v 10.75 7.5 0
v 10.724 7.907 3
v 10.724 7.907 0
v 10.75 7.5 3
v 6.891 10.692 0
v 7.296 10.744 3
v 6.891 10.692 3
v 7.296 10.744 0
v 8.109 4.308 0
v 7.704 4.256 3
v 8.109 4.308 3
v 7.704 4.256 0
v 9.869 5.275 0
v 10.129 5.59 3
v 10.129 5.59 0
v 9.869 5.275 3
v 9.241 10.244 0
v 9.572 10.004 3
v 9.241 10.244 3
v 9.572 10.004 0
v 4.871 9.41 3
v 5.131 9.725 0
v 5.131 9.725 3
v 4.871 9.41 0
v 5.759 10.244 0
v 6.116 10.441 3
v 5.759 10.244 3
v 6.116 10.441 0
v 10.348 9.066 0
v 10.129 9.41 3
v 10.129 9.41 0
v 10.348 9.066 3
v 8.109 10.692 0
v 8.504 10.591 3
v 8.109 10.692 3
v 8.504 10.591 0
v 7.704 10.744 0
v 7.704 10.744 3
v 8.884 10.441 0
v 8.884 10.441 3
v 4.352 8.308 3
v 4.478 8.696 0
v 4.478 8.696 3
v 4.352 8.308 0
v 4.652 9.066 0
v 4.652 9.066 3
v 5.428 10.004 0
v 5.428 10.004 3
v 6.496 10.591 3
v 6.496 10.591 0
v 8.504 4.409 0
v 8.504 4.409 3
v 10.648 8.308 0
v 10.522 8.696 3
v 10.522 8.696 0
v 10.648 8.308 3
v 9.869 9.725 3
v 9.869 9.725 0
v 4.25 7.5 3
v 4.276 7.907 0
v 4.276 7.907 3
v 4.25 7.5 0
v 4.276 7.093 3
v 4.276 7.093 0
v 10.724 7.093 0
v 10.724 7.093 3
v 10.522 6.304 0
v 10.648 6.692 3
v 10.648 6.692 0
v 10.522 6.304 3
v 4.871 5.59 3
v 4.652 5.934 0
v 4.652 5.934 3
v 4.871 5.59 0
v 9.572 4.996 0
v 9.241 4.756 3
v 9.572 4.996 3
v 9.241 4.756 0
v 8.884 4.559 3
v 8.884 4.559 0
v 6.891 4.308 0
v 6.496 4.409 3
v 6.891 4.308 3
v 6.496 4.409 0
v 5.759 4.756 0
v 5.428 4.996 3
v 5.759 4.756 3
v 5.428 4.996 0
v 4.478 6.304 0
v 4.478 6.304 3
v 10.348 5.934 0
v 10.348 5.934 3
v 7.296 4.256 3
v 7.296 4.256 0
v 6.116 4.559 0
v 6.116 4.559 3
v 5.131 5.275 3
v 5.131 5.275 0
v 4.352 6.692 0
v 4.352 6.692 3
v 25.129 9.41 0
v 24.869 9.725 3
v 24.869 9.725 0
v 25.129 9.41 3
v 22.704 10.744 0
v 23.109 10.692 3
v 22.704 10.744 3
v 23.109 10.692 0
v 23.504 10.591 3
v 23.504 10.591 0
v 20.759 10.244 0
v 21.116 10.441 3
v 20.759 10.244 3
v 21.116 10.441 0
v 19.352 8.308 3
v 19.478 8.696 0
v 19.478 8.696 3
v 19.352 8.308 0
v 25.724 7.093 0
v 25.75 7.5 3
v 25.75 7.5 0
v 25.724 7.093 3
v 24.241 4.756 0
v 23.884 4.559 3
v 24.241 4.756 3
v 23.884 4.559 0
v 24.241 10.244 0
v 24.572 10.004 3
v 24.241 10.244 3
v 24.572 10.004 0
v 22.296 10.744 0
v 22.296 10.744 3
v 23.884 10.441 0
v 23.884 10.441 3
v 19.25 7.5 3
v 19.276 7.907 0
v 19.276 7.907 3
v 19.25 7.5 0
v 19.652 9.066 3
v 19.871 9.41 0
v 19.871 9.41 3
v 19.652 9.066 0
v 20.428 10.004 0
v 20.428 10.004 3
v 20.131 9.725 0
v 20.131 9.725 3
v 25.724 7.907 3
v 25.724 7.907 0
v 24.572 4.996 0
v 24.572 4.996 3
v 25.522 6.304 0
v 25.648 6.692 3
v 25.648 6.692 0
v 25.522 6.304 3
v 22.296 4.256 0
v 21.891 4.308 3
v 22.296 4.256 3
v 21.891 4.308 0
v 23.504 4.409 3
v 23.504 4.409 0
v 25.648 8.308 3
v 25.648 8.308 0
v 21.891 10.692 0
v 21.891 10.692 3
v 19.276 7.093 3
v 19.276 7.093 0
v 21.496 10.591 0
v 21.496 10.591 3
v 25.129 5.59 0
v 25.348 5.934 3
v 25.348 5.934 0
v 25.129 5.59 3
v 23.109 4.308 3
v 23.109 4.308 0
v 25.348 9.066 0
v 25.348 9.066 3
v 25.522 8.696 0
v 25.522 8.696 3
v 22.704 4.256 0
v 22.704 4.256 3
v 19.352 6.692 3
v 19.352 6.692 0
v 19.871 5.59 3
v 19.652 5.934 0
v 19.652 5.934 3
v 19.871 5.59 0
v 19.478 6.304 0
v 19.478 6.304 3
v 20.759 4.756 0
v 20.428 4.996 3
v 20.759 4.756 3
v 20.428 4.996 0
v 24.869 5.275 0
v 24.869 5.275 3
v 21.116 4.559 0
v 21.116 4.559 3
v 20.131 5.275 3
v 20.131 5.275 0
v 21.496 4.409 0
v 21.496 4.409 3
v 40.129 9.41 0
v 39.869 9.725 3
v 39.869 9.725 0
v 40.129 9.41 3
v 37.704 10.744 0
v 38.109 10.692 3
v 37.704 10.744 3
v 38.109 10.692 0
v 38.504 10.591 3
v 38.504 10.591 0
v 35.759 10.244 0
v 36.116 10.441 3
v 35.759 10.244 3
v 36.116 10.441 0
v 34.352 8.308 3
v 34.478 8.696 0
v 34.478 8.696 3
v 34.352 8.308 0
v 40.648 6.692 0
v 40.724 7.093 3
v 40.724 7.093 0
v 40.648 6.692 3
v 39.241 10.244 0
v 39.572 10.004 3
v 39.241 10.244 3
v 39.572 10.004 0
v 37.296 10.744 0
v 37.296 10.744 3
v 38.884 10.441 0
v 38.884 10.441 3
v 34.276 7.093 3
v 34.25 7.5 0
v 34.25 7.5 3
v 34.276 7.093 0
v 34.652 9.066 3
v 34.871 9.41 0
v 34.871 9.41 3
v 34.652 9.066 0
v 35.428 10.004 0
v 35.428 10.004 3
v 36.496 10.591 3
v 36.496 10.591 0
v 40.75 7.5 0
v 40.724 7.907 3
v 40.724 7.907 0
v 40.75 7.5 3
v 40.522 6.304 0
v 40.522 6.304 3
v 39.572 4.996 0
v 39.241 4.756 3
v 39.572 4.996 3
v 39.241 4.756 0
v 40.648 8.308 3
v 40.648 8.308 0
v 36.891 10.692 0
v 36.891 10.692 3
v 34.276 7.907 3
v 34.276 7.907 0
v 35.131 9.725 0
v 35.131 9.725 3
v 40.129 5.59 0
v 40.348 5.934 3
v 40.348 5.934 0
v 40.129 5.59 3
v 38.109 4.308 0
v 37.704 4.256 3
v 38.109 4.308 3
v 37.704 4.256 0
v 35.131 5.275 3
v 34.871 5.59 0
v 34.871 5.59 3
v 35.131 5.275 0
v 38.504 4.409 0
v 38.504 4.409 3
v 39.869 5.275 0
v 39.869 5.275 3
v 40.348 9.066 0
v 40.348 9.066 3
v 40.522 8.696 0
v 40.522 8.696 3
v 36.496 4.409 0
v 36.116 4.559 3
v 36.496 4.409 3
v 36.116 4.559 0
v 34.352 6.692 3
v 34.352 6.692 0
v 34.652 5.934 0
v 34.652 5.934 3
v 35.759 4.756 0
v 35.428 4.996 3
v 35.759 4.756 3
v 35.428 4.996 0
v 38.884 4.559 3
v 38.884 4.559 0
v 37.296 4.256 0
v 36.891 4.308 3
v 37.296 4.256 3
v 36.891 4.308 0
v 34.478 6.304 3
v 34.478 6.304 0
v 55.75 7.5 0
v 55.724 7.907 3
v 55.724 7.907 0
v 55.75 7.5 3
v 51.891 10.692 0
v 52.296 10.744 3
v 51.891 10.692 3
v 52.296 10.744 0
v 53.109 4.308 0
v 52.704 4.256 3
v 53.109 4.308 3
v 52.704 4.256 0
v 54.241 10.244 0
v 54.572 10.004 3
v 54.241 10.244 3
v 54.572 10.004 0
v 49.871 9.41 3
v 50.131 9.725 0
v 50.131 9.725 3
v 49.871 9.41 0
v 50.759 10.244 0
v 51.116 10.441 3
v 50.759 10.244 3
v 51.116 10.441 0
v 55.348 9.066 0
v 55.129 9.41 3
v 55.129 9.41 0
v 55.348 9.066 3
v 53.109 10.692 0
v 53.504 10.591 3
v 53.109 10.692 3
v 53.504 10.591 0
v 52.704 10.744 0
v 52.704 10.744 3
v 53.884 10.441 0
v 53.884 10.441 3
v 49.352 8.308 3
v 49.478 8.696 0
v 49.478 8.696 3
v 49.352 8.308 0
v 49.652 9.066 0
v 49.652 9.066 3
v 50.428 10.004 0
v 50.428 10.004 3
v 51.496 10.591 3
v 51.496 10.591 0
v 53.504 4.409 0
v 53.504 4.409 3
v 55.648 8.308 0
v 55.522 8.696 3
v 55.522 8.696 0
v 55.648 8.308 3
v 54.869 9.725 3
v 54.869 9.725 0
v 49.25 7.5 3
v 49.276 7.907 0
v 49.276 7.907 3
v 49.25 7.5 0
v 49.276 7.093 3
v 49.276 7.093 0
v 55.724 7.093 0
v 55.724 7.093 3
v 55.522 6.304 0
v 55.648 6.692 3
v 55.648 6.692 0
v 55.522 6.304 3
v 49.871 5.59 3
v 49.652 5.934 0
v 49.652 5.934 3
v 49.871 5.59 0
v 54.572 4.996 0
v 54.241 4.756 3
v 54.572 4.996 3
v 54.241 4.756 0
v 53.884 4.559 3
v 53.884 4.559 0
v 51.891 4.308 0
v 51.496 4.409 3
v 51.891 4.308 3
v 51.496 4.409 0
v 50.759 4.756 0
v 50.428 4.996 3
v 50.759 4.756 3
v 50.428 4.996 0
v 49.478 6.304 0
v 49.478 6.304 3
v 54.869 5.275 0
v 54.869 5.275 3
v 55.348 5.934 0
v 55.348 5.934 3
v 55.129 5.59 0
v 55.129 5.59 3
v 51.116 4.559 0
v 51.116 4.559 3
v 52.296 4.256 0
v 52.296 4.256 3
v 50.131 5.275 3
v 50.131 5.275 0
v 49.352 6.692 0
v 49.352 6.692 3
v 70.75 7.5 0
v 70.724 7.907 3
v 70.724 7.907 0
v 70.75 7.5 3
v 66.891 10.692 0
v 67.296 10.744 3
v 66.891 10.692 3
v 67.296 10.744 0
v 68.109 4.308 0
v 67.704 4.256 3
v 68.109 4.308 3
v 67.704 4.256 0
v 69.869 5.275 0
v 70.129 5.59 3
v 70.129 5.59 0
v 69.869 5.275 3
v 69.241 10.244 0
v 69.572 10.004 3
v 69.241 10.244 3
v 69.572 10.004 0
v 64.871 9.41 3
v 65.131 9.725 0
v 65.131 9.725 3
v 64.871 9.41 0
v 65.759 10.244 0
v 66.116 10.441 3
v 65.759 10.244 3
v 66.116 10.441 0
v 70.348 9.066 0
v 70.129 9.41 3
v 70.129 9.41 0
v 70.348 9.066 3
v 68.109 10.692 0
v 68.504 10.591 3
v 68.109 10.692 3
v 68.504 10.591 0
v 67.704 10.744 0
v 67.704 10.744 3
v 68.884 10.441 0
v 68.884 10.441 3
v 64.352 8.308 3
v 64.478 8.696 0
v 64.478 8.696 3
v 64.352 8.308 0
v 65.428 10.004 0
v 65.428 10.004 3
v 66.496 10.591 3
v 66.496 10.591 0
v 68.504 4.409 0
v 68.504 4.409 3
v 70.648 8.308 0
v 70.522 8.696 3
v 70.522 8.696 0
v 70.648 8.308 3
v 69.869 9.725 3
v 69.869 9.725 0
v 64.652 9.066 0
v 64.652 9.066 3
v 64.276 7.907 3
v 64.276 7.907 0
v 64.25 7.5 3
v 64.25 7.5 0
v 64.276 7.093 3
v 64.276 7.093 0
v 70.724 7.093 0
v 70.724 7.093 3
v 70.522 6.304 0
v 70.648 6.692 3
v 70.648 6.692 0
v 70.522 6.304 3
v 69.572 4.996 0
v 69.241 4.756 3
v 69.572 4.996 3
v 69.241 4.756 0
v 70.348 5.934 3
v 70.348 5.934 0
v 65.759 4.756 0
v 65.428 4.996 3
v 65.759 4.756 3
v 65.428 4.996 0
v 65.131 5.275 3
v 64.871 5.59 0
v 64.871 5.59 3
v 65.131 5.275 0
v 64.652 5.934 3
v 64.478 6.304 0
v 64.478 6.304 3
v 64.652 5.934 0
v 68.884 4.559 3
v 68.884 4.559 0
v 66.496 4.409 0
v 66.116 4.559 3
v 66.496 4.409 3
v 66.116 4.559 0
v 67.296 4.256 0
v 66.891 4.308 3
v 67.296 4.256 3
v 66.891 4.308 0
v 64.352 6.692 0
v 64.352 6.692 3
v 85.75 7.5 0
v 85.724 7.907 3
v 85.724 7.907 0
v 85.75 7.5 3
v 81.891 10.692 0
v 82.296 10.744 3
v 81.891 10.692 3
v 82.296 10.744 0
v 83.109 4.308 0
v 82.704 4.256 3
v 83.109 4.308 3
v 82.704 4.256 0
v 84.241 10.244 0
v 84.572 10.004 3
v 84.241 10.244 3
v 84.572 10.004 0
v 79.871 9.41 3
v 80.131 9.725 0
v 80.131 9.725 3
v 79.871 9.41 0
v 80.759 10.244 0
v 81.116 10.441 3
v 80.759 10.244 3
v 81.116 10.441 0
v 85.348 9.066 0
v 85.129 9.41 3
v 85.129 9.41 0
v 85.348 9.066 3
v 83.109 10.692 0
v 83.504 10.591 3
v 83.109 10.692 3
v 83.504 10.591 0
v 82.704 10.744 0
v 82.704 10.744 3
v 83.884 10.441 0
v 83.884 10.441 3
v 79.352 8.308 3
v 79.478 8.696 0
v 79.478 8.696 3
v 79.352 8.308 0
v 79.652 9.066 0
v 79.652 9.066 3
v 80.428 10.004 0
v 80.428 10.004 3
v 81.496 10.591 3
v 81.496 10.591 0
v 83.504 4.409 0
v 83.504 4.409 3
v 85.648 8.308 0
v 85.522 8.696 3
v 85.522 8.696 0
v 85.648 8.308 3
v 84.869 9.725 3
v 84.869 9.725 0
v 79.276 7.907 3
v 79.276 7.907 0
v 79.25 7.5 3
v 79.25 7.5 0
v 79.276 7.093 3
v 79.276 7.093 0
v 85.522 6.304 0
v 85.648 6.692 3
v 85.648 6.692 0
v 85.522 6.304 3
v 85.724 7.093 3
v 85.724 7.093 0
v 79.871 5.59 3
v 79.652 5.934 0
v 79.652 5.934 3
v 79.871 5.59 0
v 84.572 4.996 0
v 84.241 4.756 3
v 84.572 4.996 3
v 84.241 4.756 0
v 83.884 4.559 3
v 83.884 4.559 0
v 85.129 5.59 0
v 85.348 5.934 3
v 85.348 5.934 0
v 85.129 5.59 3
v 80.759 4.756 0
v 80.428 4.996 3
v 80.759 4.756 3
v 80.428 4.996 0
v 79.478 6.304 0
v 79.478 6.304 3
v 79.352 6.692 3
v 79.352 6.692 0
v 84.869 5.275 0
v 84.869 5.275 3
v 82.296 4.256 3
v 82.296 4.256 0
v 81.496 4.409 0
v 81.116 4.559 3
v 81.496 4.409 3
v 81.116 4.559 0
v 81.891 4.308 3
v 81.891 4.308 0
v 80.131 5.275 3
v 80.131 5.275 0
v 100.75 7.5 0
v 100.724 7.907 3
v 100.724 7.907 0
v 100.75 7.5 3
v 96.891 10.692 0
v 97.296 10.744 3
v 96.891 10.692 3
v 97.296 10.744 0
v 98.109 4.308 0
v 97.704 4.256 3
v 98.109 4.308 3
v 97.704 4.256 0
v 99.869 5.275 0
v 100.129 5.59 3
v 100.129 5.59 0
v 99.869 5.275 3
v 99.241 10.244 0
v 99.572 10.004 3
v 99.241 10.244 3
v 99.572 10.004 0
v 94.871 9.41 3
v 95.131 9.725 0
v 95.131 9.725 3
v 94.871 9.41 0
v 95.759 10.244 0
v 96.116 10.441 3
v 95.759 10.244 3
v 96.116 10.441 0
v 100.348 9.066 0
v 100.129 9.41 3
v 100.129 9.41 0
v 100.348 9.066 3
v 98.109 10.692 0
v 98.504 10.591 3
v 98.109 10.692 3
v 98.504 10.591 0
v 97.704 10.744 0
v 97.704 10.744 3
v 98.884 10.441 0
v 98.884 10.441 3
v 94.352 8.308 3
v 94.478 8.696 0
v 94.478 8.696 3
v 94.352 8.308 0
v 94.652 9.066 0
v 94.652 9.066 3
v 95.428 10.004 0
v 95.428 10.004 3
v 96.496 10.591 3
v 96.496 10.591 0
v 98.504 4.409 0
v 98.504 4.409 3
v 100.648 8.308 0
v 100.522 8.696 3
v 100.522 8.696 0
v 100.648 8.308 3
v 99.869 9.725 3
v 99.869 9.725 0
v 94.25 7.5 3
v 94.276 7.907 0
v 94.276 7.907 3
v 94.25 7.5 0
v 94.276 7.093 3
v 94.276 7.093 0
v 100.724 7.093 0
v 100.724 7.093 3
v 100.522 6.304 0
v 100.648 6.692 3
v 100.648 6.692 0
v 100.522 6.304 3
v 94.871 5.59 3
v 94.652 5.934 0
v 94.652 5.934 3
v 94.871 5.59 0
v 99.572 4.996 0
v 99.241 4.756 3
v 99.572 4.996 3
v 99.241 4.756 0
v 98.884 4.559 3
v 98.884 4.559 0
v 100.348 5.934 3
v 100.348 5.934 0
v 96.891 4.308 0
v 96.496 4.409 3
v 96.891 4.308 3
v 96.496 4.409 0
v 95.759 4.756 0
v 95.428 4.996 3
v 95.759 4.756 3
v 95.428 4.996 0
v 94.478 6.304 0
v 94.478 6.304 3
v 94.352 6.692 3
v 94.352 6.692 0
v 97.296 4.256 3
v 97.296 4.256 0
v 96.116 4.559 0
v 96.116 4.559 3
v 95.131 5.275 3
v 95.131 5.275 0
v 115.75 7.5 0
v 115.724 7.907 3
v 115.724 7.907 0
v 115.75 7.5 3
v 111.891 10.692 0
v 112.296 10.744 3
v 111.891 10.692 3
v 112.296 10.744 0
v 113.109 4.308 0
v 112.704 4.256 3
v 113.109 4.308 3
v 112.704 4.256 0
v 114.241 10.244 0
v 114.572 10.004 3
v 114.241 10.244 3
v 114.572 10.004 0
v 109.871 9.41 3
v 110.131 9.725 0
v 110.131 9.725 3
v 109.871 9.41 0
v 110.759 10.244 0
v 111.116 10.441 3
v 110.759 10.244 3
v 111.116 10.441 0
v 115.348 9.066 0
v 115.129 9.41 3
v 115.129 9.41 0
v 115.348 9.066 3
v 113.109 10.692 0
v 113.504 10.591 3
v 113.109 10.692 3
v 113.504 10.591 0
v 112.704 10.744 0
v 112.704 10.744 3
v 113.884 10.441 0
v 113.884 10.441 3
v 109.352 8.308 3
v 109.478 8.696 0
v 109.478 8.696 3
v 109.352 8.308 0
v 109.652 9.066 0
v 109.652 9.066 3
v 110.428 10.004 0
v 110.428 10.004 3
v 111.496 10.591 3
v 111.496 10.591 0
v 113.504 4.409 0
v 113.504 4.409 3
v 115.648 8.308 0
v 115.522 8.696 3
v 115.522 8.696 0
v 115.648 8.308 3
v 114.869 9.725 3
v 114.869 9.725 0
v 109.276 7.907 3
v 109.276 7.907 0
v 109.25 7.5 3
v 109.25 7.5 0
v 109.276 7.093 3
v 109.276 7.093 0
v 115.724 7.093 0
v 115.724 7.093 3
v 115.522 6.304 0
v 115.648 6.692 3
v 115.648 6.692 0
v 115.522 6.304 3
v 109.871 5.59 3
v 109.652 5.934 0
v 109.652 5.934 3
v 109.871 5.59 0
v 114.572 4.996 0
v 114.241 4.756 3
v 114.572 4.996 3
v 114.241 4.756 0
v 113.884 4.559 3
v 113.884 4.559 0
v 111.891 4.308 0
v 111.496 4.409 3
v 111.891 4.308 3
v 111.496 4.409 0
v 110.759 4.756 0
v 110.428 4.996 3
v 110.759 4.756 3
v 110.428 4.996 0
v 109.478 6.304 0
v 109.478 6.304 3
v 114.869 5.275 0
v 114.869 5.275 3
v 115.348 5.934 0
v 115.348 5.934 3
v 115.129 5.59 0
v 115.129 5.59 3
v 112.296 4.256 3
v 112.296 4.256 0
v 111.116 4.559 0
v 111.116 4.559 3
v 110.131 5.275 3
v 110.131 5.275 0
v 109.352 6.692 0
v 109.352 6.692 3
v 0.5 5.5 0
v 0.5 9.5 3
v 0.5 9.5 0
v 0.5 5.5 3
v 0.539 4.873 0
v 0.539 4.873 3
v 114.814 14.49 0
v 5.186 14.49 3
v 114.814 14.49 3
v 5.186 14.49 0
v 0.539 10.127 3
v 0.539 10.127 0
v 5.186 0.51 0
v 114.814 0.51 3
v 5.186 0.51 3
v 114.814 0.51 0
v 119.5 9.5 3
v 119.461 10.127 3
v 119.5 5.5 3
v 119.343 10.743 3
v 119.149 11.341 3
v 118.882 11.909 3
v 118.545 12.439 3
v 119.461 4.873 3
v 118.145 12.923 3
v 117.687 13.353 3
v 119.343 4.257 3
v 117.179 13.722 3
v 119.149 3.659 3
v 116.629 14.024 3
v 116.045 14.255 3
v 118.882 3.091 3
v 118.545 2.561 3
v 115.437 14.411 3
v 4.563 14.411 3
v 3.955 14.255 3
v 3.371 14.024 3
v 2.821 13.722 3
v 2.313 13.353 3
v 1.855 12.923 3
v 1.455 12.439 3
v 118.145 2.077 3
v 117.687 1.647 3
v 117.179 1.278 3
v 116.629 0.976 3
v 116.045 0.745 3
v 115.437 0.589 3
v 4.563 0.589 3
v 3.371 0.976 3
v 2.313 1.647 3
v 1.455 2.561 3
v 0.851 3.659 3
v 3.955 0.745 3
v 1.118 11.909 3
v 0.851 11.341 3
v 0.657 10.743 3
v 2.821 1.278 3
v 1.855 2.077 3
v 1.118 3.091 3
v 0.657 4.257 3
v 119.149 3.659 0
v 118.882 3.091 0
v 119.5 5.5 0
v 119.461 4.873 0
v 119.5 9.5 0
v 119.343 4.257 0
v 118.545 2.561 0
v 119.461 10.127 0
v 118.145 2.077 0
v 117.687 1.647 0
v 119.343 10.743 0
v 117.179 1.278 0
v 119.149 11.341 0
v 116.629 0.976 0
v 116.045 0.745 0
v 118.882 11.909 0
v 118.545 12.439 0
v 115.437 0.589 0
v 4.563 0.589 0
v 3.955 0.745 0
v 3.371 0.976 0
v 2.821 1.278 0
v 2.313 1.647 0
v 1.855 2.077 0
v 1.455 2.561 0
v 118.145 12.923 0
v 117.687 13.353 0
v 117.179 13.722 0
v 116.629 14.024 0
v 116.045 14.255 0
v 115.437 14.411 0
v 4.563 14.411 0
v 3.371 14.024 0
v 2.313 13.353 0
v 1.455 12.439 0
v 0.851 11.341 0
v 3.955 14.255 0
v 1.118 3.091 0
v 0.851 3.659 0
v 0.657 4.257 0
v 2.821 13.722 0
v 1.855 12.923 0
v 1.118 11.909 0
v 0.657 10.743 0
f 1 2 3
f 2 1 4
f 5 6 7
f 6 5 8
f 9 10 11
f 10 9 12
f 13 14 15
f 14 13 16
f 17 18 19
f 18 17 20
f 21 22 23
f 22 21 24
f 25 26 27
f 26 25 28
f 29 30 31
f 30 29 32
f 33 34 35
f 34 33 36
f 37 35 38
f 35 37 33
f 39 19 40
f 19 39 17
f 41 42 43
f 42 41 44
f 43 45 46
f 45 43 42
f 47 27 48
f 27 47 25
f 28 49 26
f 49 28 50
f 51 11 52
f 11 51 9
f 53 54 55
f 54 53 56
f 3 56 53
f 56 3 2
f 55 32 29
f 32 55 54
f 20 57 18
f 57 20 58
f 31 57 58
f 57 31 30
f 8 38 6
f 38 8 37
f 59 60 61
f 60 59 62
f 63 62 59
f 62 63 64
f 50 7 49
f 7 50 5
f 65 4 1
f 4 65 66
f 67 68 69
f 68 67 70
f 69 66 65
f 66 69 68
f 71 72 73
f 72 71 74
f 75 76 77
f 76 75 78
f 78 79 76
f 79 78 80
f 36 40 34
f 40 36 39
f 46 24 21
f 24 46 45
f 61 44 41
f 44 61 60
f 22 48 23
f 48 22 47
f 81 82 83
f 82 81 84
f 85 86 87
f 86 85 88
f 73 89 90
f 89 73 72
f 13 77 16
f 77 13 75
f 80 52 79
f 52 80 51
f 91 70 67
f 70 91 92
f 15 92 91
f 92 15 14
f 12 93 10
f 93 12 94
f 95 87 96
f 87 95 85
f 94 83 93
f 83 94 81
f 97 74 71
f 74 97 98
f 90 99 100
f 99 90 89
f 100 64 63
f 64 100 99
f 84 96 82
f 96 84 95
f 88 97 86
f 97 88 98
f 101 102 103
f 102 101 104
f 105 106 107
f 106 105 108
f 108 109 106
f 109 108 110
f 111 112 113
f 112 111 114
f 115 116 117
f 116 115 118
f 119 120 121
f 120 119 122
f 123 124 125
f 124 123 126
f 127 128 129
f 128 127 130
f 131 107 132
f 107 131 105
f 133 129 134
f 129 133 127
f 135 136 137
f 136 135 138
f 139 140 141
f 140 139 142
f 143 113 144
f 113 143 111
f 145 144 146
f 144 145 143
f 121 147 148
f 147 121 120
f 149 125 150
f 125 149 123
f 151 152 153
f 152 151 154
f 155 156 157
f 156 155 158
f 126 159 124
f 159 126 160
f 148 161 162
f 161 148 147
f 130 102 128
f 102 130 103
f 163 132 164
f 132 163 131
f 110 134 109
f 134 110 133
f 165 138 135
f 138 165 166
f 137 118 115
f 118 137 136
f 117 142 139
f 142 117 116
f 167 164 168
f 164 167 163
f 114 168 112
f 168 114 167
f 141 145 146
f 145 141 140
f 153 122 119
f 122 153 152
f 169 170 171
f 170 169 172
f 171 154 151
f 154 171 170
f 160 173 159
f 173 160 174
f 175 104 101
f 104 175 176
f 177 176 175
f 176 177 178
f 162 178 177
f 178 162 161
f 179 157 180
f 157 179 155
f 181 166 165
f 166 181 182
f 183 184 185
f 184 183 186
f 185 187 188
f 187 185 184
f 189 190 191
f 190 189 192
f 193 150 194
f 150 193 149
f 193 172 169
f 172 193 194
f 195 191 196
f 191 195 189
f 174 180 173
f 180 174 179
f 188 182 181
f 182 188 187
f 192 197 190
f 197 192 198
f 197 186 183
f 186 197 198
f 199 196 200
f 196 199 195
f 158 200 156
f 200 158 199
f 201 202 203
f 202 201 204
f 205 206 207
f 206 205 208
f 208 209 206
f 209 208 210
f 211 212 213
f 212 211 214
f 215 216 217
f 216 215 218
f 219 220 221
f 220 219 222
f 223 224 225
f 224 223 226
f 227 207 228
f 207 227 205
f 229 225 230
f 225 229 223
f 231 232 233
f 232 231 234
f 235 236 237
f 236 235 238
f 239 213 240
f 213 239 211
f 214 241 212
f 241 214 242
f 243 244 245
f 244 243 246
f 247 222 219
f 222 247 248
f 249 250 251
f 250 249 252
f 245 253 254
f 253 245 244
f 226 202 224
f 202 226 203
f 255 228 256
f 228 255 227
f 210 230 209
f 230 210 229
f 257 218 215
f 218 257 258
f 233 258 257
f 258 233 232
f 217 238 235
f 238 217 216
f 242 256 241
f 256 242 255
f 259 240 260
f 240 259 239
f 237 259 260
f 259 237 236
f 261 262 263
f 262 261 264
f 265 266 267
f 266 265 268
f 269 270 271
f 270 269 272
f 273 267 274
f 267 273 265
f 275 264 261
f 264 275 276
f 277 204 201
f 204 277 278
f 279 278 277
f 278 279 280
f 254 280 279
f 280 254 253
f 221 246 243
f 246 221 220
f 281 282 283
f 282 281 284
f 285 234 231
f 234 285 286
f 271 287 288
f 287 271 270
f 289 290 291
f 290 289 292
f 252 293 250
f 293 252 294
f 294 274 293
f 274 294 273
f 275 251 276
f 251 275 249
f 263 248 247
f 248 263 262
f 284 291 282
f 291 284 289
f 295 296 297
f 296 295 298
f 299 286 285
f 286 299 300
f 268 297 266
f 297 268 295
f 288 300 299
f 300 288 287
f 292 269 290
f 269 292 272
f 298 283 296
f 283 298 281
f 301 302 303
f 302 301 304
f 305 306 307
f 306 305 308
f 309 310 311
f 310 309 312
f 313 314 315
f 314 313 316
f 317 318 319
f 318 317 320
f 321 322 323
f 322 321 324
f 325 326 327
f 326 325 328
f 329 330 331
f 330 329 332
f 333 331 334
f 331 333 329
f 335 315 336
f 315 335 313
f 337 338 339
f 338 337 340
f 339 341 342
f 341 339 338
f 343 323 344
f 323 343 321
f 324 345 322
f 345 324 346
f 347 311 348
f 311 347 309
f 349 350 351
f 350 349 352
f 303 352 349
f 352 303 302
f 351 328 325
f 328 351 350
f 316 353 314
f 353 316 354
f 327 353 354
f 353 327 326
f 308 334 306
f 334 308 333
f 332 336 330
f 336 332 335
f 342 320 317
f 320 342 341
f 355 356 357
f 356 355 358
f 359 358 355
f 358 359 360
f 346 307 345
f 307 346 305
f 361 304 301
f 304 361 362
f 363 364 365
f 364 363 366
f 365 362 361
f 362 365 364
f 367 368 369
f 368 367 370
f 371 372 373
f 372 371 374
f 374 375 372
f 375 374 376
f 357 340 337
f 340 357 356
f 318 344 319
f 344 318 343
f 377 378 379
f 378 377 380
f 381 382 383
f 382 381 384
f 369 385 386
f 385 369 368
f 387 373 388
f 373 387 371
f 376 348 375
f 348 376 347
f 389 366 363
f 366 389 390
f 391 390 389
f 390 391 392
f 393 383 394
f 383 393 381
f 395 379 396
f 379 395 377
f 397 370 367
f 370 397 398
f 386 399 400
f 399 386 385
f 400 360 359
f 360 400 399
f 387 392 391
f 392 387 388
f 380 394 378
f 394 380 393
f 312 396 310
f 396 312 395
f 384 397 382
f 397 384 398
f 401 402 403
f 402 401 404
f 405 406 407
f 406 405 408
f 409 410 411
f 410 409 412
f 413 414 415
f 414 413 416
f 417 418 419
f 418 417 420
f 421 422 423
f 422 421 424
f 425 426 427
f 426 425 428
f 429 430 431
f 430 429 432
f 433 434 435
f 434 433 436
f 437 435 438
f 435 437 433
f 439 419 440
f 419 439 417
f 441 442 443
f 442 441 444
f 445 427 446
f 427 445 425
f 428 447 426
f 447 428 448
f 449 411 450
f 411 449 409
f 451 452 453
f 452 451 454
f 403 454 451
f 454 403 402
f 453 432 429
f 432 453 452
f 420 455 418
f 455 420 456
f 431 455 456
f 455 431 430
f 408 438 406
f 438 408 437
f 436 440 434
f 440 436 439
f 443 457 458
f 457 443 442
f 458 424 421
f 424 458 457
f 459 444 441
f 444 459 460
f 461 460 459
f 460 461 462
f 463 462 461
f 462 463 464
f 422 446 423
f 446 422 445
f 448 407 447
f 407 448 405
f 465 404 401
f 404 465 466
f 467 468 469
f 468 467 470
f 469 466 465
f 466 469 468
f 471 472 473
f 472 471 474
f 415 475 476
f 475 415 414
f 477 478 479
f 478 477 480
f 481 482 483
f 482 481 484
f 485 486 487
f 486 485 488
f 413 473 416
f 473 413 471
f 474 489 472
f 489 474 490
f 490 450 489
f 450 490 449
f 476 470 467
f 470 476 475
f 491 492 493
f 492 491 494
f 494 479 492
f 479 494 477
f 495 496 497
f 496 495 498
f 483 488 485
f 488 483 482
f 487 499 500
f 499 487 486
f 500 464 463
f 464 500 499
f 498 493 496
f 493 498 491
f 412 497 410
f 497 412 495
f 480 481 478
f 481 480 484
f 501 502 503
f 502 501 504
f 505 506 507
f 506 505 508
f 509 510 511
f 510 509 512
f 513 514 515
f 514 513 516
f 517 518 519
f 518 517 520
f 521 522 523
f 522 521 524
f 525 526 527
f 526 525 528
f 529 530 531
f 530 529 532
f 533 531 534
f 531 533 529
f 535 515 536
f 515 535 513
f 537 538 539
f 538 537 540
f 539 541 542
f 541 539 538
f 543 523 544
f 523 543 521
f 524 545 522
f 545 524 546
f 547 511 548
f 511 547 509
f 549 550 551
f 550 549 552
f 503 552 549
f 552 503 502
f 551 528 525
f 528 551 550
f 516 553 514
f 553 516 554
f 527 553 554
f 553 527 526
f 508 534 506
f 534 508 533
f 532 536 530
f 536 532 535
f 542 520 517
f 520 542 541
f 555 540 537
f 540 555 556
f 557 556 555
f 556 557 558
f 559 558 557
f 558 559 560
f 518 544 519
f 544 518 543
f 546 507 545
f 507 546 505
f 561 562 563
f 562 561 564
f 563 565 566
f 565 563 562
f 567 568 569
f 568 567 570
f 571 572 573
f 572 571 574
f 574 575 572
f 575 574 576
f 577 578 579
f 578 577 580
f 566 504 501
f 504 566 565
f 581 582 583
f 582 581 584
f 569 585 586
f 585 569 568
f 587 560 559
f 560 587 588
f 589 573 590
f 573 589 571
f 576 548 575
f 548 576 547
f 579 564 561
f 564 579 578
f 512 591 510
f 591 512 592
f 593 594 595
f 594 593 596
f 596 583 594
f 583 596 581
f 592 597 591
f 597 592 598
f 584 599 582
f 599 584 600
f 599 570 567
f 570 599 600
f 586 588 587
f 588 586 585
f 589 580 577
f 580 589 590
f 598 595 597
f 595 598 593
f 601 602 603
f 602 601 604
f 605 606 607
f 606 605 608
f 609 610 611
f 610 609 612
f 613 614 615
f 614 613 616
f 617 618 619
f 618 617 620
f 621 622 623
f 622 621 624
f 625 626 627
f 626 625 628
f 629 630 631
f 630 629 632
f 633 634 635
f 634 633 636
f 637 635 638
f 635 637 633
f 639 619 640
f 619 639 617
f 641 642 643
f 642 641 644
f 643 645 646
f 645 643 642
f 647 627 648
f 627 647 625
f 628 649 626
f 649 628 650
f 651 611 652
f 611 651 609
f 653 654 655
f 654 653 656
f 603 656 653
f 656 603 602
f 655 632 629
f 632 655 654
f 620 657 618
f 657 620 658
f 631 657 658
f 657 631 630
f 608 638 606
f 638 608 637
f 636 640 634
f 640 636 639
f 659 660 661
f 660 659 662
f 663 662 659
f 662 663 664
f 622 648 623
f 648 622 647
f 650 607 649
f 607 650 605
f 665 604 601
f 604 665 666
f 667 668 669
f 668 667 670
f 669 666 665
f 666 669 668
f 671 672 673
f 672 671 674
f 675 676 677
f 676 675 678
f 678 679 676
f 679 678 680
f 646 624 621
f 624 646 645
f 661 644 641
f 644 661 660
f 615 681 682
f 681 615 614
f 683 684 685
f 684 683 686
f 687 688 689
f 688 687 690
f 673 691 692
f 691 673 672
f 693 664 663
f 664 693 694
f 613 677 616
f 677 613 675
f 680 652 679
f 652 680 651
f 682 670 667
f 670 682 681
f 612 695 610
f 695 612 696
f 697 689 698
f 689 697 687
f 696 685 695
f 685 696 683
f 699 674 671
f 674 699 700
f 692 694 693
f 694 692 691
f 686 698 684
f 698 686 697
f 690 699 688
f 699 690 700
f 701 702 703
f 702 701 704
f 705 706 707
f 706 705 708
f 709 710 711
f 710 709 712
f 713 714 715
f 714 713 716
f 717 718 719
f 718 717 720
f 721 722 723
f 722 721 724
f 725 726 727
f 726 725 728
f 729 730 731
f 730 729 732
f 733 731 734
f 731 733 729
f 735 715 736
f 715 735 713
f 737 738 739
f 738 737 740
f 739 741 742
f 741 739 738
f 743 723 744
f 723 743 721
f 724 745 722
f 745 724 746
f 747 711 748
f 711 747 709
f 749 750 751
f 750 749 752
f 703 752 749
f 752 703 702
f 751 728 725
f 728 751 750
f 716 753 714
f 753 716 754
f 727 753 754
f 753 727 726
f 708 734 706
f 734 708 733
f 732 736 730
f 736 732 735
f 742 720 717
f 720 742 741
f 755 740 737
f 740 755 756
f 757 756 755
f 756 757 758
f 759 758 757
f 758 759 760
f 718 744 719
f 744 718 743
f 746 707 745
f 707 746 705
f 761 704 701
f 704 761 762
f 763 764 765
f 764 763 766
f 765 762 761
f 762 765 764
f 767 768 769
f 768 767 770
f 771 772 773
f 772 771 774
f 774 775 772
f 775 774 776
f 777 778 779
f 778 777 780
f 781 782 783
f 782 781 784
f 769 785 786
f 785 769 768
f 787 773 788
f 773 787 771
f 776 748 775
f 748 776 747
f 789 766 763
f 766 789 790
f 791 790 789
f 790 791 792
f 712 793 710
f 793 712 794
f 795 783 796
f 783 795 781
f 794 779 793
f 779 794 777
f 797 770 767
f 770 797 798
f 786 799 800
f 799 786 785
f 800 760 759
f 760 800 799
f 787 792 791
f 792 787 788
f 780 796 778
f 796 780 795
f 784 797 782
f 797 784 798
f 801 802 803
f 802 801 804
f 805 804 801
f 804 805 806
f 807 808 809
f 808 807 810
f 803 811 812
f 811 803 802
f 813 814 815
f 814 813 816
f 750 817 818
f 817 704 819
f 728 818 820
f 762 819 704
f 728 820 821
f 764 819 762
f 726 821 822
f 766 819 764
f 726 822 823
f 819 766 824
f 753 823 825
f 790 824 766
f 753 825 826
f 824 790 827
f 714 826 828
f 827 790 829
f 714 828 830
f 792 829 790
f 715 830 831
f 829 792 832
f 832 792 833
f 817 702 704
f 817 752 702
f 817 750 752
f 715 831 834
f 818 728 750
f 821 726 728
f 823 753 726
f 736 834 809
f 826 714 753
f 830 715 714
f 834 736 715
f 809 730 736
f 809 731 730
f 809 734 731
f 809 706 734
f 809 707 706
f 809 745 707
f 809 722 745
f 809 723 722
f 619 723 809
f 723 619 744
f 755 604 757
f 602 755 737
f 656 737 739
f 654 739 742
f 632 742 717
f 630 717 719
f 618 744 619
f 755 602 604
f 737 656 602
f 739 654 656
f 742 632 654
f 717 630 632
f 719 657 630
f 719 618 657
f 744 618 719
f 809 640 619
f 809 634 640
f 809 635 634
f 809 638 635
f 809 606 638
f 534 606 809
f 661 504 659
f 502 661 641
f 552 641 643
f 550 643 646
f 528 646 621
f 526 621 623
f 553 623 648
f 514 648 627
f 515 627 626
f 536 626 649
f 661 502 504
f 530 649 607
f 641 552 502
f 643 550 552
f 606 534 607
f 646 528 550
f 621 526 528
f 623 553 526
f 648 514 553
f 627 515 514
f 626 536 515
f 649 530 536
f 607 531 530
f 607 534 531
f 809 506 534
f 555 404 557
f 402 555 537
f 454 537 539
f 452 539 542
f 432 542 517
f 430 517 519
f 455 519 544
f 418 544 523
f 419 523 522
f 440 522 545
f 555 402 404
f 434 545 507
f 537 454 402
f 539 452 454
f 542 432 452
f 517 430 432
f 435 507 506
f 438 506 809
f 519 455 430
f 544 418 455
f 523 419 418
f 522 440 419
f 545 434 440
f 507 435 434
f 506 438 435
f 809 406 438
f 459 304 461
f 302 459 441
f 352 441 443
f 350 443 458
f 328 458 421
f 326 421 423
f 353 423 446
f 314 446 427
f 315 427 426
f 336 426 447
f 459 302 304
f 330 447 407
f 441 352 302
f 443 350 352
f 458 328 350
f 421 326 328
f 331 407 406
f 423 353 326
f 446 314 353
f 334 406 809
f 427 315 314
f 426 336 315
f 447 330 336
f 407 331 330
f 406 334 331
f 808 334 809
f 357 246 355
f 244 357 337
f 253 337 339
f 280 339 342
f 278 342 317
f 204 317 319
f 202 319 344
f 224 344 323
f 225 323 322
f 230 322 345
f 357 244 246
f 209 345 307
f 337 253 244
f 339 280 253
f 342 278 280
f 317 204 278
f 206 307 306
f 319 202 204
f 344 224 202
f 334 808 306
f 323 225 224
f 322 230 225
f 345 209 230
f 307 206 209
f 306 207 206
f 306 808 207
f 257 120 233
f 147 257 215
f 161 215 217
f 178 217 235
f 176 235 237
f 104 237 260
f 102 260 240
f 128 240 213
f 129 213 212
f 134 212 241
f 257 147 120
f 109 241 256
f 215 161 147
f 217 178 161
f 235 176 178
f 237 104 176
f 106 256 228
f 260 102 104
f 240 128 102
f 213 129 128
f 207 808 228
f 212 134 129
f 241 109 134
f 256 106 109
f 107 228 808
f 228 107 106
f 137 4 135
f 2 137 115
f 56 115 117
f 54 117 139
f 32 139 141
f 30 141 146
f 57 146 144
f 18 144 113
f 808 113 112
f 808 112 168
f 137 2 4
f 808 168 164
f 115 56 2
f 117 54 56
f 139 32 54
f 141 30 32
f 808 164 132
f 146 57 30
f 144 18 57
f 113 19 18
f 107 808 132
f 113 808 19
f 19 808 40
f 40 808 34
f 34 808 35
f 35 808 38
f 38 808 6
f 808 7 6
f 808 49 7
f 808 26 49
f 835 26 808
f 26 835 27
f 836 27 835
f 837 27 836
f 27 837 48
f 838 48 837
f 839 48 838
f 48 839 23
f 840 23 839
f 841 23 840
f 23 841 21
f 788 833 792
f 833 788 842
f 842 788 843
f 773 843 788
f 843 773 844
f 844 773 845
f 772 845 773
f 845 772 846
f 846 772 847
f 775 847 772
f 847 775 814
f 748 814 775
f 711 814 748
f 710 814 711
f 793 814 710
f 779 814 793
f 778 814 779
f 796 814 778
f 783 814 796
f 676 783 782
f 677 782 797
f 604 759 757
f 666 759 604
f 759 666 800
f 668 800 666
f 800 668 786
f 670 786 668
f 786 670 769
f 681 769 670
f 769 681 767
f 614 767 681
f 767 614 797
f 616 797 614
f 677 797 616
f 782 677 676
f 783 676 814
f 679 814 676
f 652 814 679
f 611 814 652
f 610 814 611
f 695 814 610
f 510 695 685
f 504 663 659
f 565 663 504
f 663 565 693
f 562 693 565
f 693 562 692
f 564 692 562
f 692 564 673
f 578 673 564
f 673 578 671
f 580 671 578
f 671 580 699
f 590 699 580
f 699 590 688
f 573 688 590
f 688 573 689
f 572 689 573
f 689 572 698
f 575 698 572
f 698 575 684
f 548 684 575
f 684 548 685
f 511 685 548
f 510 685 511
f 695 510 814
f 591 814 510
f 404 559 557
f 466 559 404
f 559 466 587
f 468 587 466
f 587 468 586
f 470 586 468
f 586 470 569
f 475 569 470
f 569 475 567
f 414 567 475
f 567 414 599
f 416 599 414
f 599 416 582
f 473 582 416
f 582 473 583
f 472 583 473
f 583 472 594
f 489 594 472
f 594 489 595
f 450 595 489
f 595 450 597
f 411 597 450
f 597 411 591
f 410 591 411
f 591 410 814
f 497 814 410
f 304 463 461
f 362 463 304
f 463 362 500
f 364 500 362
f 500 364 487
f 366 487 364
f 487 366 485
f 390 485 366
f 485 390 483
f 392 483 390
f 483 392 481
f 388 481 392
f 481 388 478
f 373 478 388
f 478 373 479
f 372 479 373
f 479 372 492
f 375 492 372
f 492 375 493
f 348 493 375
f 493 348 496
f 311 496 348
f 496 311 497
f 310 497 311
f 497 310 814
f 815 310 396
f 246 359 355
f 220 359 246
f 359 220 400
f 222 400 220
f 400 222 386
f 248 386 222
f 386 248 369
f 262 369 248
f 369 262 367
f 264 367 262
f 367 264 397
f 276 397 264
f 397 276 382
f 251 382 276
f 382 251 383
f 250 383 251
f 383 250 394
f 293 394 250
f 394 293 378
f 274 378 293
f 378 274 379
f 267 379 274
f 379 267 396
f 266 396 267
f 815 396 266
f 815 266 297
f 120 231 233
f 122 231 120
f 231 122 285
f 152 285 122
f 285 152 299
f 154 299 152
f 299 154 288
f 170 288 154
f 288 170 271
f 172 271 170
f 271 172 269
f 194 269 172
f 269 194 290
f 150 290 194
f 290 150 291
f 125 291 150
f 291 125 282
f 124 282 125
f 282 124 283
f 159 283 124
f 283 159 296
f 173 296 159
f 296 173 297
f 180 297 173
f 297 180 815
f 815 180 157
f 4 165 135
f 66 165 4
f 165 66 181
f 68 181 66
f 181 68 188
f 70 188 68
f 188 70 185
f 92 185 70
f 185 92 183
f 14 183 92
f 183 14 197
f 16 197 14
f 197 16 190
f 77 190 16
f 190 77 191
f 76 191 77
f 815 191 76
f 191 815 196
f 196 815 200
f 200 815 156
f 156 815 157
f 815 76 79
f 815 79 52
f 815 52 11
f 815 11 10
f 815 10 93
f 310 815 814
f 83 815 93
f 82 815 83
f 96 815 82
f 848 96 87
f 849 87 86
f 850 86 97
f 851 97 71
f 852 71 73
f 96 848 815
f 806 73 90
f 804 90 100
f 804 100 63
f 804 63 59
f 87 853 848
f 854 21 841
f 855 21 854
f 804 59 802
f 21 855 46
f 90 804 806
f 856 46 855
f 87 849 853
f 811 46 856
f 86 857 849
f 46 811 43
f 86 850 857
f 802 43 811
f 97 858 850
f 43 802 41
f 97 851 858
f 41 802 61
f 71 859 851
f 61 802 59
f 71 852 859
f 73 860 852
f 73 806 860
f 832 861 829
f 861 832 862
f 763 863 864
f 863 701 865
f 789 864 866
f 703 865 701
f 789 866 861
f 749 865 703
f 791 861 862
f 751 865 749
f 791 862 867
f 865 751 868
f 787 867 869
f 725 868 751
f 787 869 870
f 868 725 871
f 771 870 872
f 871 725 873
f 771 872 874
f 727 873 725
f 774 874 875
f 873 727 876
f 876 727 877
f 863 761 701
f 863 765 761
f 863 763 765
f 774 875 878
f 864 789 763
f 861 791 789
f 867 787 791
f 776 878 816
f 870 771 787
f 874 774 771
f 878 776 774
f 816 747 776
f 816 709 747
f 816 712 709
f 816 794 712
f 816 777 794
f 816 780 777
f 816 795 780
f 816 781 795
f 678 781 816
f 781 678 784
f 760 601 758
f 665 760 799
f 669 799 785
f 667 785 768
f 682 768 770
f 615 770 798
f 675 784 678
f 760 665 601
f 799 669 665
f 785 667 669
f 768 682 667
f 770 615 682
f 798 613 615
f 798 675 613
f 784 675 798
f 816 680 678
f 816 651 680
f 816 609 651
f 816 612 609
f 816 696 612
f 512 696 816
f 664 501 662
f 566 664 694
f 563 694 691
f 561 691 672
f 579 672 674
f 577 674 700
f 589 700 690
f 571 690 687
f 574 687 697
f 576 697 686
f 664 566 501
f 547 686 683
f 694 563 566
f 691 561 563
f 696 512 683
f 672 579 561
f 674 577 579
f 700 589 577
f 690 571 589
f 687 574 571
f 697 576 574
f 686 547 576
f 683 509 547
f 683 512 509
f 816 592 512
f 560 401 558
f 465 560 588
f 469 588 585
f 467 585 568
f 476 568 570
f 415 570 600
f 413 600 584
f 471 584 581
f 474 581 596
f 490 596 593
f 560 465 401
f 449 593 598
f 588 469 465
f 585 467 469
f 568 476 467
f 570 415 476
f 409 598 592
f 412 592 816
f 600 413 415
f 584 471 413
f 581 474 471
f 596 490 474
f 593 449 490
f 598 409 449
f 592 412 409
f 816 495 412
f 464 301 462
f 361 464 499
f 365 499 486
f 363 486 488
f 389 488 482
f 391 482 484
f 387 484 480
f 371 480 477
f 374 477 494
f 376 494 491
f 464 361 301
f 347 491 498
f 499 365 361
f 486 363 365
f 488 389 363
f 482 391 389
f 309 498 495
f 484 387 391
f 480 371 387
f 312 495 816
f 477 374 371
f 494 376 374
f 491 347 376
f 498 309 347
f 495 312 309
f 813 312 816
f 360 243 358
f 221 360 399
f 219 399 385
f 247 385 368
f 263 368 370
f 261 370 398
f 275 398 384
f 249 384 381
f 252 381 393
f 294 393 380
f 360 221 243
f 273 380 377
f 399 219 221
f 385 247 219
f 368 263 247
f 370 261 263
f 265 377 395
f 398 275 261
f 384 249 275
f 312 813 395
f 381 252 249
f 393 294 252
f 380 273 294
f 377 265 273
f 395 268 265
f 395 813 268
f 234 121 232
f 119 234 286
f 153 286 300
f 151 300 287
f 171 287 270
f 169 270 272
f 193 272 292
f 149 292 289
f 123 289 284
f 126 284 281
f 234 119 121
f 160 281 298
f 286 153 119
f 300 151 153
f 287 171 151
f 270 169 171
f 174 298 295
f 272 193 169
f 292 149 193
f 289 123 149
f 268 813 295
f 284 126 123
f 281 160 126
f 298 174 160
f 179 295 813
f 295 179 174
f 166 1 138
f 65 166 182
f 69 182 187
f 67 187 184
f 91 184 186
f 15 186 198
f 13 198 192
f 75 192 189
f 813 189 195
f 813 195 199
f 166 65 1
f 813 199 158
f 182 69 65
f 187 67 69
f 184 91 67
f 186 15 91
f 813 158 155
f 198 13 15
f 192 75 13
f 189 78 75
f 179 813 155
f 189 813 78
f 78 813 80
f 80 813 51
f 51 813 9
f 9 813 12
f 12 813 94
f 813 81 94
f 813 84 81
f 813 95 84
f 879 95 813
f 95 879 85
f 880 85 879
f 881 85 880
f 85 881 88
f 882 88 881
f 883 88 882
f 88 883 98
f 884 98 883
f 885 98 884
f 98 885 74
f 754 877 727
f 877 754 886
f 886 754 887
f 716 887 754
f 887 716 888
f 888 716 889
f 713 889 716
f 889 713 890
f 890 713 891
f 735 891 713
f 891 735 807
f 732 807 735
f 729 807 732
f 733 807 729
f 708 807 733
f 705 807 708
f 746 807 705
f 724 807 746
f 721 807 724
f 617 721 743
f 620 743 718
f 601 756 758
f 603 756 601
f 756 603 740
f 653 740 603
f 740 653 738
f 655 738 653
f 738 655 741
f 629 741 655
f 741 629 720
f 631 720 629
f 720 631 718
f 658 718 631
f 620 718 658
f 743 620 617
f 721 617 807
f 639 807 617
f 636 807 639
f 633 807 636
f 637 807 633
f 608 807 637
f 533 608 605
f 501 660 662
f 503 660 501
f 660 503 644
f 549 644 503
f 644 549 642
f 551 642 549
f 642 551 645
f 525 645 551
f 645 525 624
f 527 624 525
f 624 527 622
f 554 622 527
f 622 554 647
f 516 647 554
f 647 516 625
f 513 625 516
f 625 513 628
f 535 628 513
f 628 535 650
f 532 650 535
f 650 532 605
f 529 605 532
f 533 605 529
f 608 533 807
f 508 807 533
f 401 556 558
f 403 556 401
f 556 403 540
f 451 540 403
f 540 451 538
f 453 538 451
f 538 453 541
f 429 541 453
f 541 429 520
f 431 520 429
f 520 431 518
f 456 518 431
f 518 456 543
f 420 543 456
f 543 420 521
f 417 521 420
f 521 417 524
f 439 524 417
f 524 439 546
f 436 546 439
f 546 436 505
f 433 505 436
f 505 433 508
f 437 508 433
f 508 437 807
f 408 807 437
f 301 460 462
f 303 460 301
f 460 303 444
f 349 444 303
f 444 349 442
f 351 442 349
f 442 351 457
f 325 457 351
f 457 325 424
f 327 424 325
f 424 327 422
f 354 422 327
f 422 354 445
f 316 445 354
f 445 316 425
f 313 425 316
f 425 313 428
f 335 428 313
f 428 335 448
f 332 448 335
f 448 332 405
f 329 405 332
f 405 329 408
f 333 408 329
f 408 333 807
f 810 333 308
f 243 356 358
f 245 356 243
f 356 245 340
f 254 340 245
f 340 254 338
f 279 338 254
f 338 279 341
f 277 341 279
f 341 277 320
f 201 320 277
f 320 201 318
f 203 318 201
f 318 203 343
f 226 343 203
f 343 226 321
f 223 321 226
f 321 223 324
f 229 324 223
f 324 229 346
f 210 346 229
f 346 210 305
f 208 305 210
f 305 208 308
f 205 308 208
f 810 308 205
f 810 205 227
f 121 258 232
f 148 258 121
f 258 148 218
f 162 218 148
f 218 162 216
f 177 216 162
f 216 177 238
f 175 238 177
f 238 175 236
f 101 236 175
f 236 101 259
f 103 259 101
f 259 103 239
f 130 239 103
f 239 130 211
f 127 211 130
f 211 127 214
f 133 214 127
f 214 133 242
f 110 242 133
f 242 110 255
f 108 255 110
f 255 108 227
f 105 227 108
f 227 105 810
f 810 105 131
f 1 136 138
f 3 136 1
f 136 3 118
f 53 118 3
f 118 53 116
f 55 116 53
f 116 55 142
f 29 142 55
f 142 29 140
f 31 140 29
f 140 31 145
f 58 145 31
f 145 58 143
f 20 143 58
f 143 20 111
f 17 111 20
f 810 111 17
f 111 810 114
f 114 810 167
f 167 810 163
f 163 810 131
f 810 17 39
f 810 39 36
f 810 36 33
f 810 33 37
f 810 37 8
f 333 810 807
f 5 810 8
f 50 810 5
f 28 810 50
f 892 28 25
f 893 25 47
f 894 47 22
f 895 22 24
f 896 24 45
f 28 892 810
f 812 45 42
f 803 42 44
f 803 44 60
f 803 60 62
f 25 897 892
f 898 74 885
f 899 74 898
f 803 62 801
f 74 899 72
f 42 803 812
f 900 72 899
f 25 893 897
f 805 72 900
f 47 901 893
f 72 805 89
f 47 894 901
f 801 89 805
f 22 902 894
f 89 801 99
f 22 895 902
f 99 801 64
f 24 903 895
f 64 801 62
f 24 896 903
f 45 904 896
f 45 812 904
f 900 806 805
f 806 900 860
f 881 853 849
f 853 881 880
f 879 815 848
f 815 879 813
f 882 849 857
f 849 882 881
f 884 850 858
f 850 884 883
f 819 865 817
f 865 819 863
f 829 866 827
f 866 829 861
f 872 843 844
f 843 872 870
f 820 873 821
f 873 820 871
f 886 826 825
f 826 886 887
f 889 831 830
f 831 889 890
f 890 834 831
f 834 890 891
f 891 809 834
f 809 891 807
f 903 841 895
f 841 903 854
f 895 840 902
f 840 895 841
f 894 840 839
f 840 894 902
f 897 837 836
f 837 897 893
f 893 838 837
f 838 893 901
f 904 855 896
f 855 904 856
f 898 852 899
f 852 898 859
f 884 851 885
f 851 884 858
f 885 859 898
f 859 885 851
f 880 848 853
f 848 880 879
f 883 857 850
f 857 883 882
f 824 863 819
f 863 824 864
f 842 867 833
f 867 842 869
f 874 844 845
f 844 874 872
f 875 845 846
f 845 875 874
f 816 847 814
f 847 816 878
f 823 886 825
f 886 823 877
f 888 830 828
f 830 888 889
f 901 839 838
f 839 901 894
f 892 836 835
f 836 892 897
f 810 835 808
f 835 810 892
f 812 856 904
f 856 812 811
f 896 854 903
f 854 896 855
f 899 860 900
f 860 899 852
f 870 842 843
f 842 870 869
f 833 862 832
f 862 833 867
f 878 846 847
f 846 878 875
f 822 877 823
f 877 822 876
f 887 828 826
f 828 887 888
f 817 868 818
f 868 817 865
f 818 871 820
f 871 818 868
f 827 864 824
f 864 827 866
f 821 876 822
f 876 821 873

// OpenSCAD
// Generated by SolidPython 1.1.3 on 2023-01-09 15:33:04
$fn = 50;


difference() {
	union() {
		translate(v = [60.0000000000, 7.5000000000, 0]) {
			rotate(a = [0, 0, 0]) {
				hull() {
					translate(v = [-54.5000000000, 2.0000000000, 0]) {
						rotate(a = [0, 0, 0]) {
							translate(v = [0, 0, 0]) {
								rotate(a = [0, 0, 0]) {
									cylinder(h = 3, r = 5);
								}
							}
						}
					}
					translate(v = [54.5000000000, 2.0000000000, 0]) {
						rotate(a = [0, 0, 0]) {
							translate(v = [0, 0, 0]) {
								rotate(a = [0, 0, 0]) {
									cylinder(h = 3, r = 5);
								}
							}
						}
					}
					translate(v = [-54.5000000000, -2.0000000000, 0]) {
						rotate(a = [0, 0, 0]) {
							translate(v = [0, 0, 0]) {
								rotate(a = [0, 0, 0]) {
									cylinder(h = 3, r = 5);
								}
							}
						}
					}
					translate(v = [54.5000000000, -2.0000000000, 0]) {
						rotate(a = [0, 0, 0]) {
							translate(v = [0, 0, 0]) {
								rotate(a = [0, 0, 0]) {
									cylinder(h = 3, r = 5);
								}
							}
						}
					}
				}
			}
		}
	}
	union() {
		translate(v = [7.5000000000, 7.5000000000, 0]) {
			rotate(a = [0, 0, 0]) {
				translate(v = [0, 0, -50]) {
					rotate(a = [0, 0, 0]) {
						cylinder(h = 100, r = 3.2500000000);
					}
				}
			}
		}
		translate(v = [22.5000000000, 7.5000000000, 0]) {
			rotate(a = [0, 0, 0]) {
				translate(v = [0, 0, -50]) {
					rotate(a = [0, 0, 0]) {
						cylinder(h = 100, r = 3.2500000000);
					}
				}
			}
		}
		translate(v = [37.5000000000, 7.5000000000, 0]) {
			rotate(a = [0, 0, 0]) {
				translate(v = [0, 0, -50]) {
					rotate(a = [0, 0, 0]) {
						cylinder(h = 100, r = 3.2500000000);
					}
				}
			}
		}
		translate(v = [52.5000000000, 7.5000000000, 0]) {
			rotate(a = [0, 0, 0]) {
				translate(v = [0, 0, -50]) {
					rotate(a = [0, 0, 0]) {
						cylinder(h = 100, r = 3.2500000000);
					}
				}
			}
		}
		translate(v = [67.5000000000, 7.5000000000, 0]) {
			rotate(a = [0, 0, 0]) {
				translate(v = [0, 0, -50]) {
					rotate(a = [0, 0, 0]) {
						cylinder(h = 100, r = 3.2500000000);
					}
				}
			}
		}
		translate(v = [82.5000000000, 7.5000000000, 0]) {
			rotate(a = [0, 0, 0]) {
				translate(v = [0, 0, -50]) {
					rotate(a = [0, 0, 0]) {
						cylinder(h = 100, r = 3.2500000000);
					}
				}
			}
		}
		translate(v = [97.5000000000, 7.5000000000, 0]) {
			rotate(a = [0, 0, 0]) {
				translate(v = [0, 0, -50]) {
					rotate(a = [0, 0, 0]) {
						cylinder(h = 100, r = 3.2500000000);
					}
				}
			}
		}
		translate(v = [112.5000000000, 7.5000000000, 0]) {
			rotate(a = [0, 0, 0]) {
				translate(v = [0, 0, -50]) {
					rotate(a = [0, 0, 0]) {
						cylinder(h = 100, r = 3.2500000000);
					}
				}
			}
		}
	}
}
/***********************************************
*********      SolidPython code:      **********
************************************************
 
from solid import *
import os
import subprocess

import oomB

import opsc_library_gen

mode = "laser"
#mode = "3d_print"

defined_objects = {}

radius_dict = {}
countersunk_dict = {}


def set_mode(m):
    global mode
    mode = m
    radius_dict['M6'] = 6.5/2
    radius_dict['M3'] = 3.3/2
    if mode == "laser":
        radius_dict['M6'] = 6/2
        radius_dict['M3'] = 3/2

    countersunk_dict['M3'] = {}
    countersunk_dict['M3']['little_rad'] = radius_dict['M3']
    countersunk_dict['M3']['big_rad'] = (5.5+0.6)/2
    if mode == "laser":
        countersunk_dict['M3']['big_rad'] = (4.75+0.6)/2
        countersunk_dict['M3']['little_rad'] = (4.75+0.6)/2

    countersunk_dict['M3']['height'] = 1.7


def opsc_make_object(filename, objects, save_type="none",resolution=50, layers = 1, tilediff = 200, mode="laser"):
    set_mode(mode)
    save_type = save_type.lower()
    os.makedirs(os.path.dirname(filename), exist_ok=True)
    final_object = opsc_get_object(objects)
    # Save the final object to the specified filename    
    scad_render_to_file(final_object, filename, file_header='$fn = %s;' % resolution, include_orig_code=True)
    if mode == "laser":
        filename_laser = filename.replace(".scad","-flat.scad")
        scad_render_to_file(getLaser(final_object, layers=layers, tilediff=tilediff), filename_laser, file_header='$fn = %s;' % resolution, include_orig_code=True)
        if save_type == "all":
            saveToAll(filename_laser)
        elif save_type == "dxf":
            saveToDxf(filename_laser)
    if save_type == "all":
        saveToAll(filename)
    elif save_type == "dxf":
        saveToDxf(filename)


def opsc_get_object(objects):
    # Create the solidpython objects
    positive_objects = [get_opsc_item(obj) for obj in objects if obj['type'] == 'positive']
    negative_objects = [get_opsc_item(obj) for obj in objects if obj['type'] == 'negative']
    # Union the positive objects
    positive_object = union()(*positive_objects)
    # Union the negative objects
    negative_object = union()(*negative_objects)
    # Create the final object by subtracting the negative objects from the positive objects
    return difference()(positive_object, negative_object)

def get_opsc_item(params):
    # A dictionary to map radius string values to numerical values
    #radius_dict = {'small': 5, 'medium': 10, 'large': 15}
    # An array of function names for basic shapes
    basic_shapes = ['cube', 'sphere', 'cylinder']
    
    # An array of function names for other shapes
    other_shapes = ['hole', 'slot', 'rounded_rectangle', 'countersunk']
    


    # Convert radius to r if present, and remove radius from the params dictionary
    if 'radius' in params:
        if isinstance(params['radius'], str):
            # Use the radius_dict to map the radius string value to a numerical value
            params['r'] = radius_dict[params['radius']]
        else:
            params['r'] = params['radius']
        del params['radius']
    

    # Check if the object type is a basic shape
    if params['shape'] in basic_shapes:
        # Remove shape and unexpected dictionary values
        allowed_keys = {'size', 'r', 'r1', 'r2', 'd', 'h', 'rw', 'rh', 'dw', 'dh'}
        shape_params = {k: v for k, v in params.items() if k in allowed_keys}

        # Call the corresponding function for the shape parameter, using ** notation to pass the shape_params dictionary as keyword arguments
        return get_opsc_transform(params,globals()[params['shape']](**shape_params))
    
    # If the object type is not a basic shape, check if it's a defined object or one of the other shapes
    elif params['shape'] in other_shapes:
        # Call the corresponding function for the shape parameter, passing the params dictionary as an argument
        p2 = copy.deepcopy(params)
        p2["pos"] = [0,0,0]
        return get_opsc_transform(params,globals()[params['shape']](p2))
    
    # If the object is not a basic shape or a defined object, try to import it from a .scad file
    else:
        obj = defined_objects[params['shape']]
        return get_opsc_transform(params,obj)

def get_opsc_transform(params, solid_obj):
    # Rotate the object based on the 'rot' field in the params dictionary, or the 'rotX', 'rotY', and 'rotZ' fields if 'rot' is not present
    rot = params.get('rot', [])
    if rot:
        rotX, rotY, rotZ = rot
    else:
        rotX = params.get('rotX', 0)
        rotY = params.get('rotY', 0)
        rotZ = params.get('rotZ', 0)
    solid_obj = rotate([rotX, rotY, rotZ])(solid_obj)

    # Translate the object based on the 'pos' field in the params dictionary, or the 'x', 'y', and 'z' fields if 'pos' is not present
    pos = params.get('pos', [])
    if pos:
        x, y, z = pos
    else:
        x = params.get('x', 0)
        y = params.get('y', 0)
        z = params.get('z', 0)
    solid_obj = translate([x, y, z])(solid_obj)
    return solid_obj


import random

def opsc_easy_array(type, shape, repeats, pos_start, shift_arr, **kwargs):
    for i in range(0,3):
        repeats.append(1)
        pos_start.append(0)
        shift_arr.append(0)
    return_objects = []

    for x in range(0,repeats[0]):
        for y in range(0,repeats[1]):
            for z in range(0,repeats[2]):
                return_objects.append(opsc_easy(type, shape, pos=[pos_start[0]+x*shift_arr[0],pos_start[1]+y*shift_arr[1],pos_start[2]+z*shift_arr[2]], **kwargs))
    return return_objects                



def opsc_easy(type, shape, **kwargs):
    obj = {
        'type': type,
        'shape': shape
    }
    for param in ['size', 'r', 'r1', 'r2', 'd', 'h', 'rw', 'rh', 'dw', 'dh', 'pos', 'x', 'y', 'z', 'rot', 'rotX', 'rotY', 'rotZ', "w"]:
        if param in kwargs:
            obj[param] = kwargs[param]
    return obj

def hole(params):
    p2 = copy.deepcopy(params)  
    # Check if the radius is a string and replace it with the corresponding value from the dictionary
    if isinstance(p2['r'], str):
        p2['r'] = radius_dict[p2['r']]
    
    # Set the height to 100 if not specified
    if 'h' not in p2:
        p2['h'] = 100
        p2["pos"] = [0,0,-50]
    p2["center"] = True
    # Create the cylinder object
    p2["shape"] = "cylinder"
    p2["type"] = "positive"

    return get_opsc_item(p2)

import copy

def countersunk(params):
    p2 = copy.deepcopy(params)
    counter_rad = p2['r']
    p2['r'] = radius_dict[p2['r']]
    hp = copy.deepcopy(p2)
    hp["type"] = "positive"
    hp["shape"] = "hole"
    del hp["rot"]
    hol = get_opsc_item(hp)
    
    cp = copy.deepcopy(p2)
    cp["h"] = countersunk_dict[counter_rad]["height"]
    cp["r2"] = countersunk_dict[counter_rad]["little_rad"]
    cp["r1"] = countersunk_dict[counter_rad]["big_rad"]
    del cp["r"]
    del cp["rot"]
    cp["type"] = "positive"
    cp["shape"] = "cylinder"
    cp["pos"] = [0,0,0]

    top = get_opsc_item(cp)
    return union()(hol,top)



def slot(params):  
    p2 = copy.deepcopy(params) 
    if isinstance(p2['r'], str):
        p2['r'] = radius_dict[p2['r']]
    p2["type"] = "positive"
    p2["shape"] = "hole"
    del p2["rot"]
    p2["pos"] = [0,0,0]
    left = copy.deepcopy(p2)
    right = copy.deepcopy(p2)
    left["pos"][0] = p2["w"] / 2 - p2["r"] 
    
    right["pos"][0] = -p2["w"] / 2 + p2["r"] 
    pass
    leftObj = get_opsc_item(left)
    rightObj = get_opsc_item(right)
    return hull()(leftObj, rightObj)

def rounded_rectangle(params):   
    p2 = copy.deepcopy(params) 
    p2["h"] = p2["size"][2]
    p2["pos"] = p2.get("pos", [0, 0, 0]) 
    p2["type"] = "positive"
    p2["shape"] = "hole"
    p2["pos"] = [0,0,0]
    
    if 'rot' in p2:
        del p2["rot"]   
    if 'r' not in p2:
        p2["r"] = 5 
    tl = copy.deepcopy(p2)
    tr = copy.deepcopy(p2)
    bl = copy.deepcopy(p2)
    br = copy.deepcopy(p2)
    tl["pos"][0] = -(p2["size"][0] - p2["r"]*2)/2
    tl["pos"][1] = (p2["size"][1] - p2["r"]*2)/2
    tr["pos"][0] = (p2["size"][0] - p2["r"]*2)/2
    tr["pos"][1] = (p2["size"][1] - p2["r"]*2)/2
    bl["pos"][0] = -(p2["size"][0] - p2["r"]*2)/2
    bl["pos"][1] = -(p2["size"][1] - p2["r"]*2)/2
    br["pos"][0] = (p2["size"][0] - p2["r"]*2)/2
    br["pos"][1] = -(p2["size"][1] - p2["r"]*2)/2
    del tl["size"]
    del tr["size"]
    del bl["size"]
    del br["size"]
    tlo = get_opsc_item(tl)
    tro = get_opsc_item(tr)
    blo = get_opsc_item(bl)
    bro = get_opsc_item(br)    
    return hull()(tlo, tro, blo, bro)



def import_scad_object(filename):
    # Import the .scad file and convert it to a solidpython object
    #filename = "parts"
    obj = import_scad(filename)
    return obj.main()
    


import os
import solid as solidpython

# A dictionary to store the defined objects


def load_scad_objects():
    opsc_library_gen.gen_library(defined_objects)

import random

def test(num_objects):
    objects = []
    for i in range(num_objects):
        # Choose a random shape
        #shape = random.choice(['cube', 'sphere', 'cylinder', 'hole', 'slot', "rounded_rectangle"])
        shape = random.choice(["rounded_rectangle"])

        # Choose a random type
        type = random.choice(['positive', 'negative'])
        
        # Create an empty object dictionary
        obj = {'shape': shape, 'type': type}
        
        # Set shape-specific parameters
        if obj['shape'] in ['cube']:
            obj['size'] =  [random.uniform(5, 15), random.uniform(5, 15), random.uniform(5, 15)]
        if obj['shape'] in ['rounded_rectangle']:
            obj['size'] =  [random.uniform(5, 15), random.uniform(5, 15), random.uniform(5, 15)]
            obj['r'] = random.uniform(0.5, 5)
        elif obj['shape'] == 'sphere':
            obj['r'] = random.uniform(5, 15)
        elif obj['shape'] in ['cylinder', 'hole']:
            obj['r'] = random.uniform(0.5, 5)
            obj['h'] = random.uniform(5, 15)
        elif obj['shape'] == 'slot':
            obj['r'] = random.uniform(0.5, 5)
            obj['h'] = random.uniform(5, 15)
            obj['w'] = random.uniform(5, 15)
        
        # Set a random position and rotation
        obj['pos'] = [random.uniform(-20, 20), random.uniform(-20, 20), random.uniform(-20, 20)]
        obj['rot'] = [random.uniform(-180, 180), random.uniform(-180, 180), random.uniform(-180, 180)]
        
        # Add the object to the list
        objects.append(obj)
    return objects

####### old file saving
def saveToAll(fileIn):
    saveToDxf(fileIn)
    saveToPng(fileIn)
    saveToStl(fileIn)
    saveToSvg(fileIn)

def saveToDxf(fileIn, fileOut="", copy_to_laser=True):
    if fileOut == "":
        fileOut = fileIn.replace(".scad",".dxf")
    saveToFile(fileIn, fileOut)


    
def saveToPng(fileIn, fileOut="",extra="--render"):
    if fileOut == "":
        fileOut = fileIn.replace(".scad",".png")
    saveToFile(fileIn, fileOut)

def saveToStl(fileIn, fileOut=""):
    if fileOut == "":
        fileOut = fileIn.replace(".scad",".stl")
    saveToFile(fileIn, fileOut)
    
def saveToSvg(fileIn, fileOut=""):
    if fileOut == "":
        fileOut = fileIn.replace(".scad",".svg")
    saveToFile(fileIn, fileOut)

def saveToFile(fileIn, fileOut,extra=""):
    #extra = extra + " --colorscheme Tomorrow"

    launchStr = 'openscad -o "' + fileOut + '"' + extra + ' "' + fileIn + '"'
    if ".png" in fileOut:
        launchStr = launchStr + " --render"
    print("            saveToFile launch string: " + launchStr)
    subprocess.run(launchStr)
    x=0

def getLaser(final_object,start=1.5,layers=1,thickness=3,tilediff=200):
        rv= []

        for x in range(layers):
            rv.append(translate([0,x*tilediff,0])(
                    projection()(
                        intersection()(translate([-500,-500,start+x*thickness])(cube(size=[1000,1000,0.1])),
                            final_object
                        )
                    )
            )
            )
            
        return union()(rv)

set_mode("laser")
load_scad_objects() 
 
************************************************/
